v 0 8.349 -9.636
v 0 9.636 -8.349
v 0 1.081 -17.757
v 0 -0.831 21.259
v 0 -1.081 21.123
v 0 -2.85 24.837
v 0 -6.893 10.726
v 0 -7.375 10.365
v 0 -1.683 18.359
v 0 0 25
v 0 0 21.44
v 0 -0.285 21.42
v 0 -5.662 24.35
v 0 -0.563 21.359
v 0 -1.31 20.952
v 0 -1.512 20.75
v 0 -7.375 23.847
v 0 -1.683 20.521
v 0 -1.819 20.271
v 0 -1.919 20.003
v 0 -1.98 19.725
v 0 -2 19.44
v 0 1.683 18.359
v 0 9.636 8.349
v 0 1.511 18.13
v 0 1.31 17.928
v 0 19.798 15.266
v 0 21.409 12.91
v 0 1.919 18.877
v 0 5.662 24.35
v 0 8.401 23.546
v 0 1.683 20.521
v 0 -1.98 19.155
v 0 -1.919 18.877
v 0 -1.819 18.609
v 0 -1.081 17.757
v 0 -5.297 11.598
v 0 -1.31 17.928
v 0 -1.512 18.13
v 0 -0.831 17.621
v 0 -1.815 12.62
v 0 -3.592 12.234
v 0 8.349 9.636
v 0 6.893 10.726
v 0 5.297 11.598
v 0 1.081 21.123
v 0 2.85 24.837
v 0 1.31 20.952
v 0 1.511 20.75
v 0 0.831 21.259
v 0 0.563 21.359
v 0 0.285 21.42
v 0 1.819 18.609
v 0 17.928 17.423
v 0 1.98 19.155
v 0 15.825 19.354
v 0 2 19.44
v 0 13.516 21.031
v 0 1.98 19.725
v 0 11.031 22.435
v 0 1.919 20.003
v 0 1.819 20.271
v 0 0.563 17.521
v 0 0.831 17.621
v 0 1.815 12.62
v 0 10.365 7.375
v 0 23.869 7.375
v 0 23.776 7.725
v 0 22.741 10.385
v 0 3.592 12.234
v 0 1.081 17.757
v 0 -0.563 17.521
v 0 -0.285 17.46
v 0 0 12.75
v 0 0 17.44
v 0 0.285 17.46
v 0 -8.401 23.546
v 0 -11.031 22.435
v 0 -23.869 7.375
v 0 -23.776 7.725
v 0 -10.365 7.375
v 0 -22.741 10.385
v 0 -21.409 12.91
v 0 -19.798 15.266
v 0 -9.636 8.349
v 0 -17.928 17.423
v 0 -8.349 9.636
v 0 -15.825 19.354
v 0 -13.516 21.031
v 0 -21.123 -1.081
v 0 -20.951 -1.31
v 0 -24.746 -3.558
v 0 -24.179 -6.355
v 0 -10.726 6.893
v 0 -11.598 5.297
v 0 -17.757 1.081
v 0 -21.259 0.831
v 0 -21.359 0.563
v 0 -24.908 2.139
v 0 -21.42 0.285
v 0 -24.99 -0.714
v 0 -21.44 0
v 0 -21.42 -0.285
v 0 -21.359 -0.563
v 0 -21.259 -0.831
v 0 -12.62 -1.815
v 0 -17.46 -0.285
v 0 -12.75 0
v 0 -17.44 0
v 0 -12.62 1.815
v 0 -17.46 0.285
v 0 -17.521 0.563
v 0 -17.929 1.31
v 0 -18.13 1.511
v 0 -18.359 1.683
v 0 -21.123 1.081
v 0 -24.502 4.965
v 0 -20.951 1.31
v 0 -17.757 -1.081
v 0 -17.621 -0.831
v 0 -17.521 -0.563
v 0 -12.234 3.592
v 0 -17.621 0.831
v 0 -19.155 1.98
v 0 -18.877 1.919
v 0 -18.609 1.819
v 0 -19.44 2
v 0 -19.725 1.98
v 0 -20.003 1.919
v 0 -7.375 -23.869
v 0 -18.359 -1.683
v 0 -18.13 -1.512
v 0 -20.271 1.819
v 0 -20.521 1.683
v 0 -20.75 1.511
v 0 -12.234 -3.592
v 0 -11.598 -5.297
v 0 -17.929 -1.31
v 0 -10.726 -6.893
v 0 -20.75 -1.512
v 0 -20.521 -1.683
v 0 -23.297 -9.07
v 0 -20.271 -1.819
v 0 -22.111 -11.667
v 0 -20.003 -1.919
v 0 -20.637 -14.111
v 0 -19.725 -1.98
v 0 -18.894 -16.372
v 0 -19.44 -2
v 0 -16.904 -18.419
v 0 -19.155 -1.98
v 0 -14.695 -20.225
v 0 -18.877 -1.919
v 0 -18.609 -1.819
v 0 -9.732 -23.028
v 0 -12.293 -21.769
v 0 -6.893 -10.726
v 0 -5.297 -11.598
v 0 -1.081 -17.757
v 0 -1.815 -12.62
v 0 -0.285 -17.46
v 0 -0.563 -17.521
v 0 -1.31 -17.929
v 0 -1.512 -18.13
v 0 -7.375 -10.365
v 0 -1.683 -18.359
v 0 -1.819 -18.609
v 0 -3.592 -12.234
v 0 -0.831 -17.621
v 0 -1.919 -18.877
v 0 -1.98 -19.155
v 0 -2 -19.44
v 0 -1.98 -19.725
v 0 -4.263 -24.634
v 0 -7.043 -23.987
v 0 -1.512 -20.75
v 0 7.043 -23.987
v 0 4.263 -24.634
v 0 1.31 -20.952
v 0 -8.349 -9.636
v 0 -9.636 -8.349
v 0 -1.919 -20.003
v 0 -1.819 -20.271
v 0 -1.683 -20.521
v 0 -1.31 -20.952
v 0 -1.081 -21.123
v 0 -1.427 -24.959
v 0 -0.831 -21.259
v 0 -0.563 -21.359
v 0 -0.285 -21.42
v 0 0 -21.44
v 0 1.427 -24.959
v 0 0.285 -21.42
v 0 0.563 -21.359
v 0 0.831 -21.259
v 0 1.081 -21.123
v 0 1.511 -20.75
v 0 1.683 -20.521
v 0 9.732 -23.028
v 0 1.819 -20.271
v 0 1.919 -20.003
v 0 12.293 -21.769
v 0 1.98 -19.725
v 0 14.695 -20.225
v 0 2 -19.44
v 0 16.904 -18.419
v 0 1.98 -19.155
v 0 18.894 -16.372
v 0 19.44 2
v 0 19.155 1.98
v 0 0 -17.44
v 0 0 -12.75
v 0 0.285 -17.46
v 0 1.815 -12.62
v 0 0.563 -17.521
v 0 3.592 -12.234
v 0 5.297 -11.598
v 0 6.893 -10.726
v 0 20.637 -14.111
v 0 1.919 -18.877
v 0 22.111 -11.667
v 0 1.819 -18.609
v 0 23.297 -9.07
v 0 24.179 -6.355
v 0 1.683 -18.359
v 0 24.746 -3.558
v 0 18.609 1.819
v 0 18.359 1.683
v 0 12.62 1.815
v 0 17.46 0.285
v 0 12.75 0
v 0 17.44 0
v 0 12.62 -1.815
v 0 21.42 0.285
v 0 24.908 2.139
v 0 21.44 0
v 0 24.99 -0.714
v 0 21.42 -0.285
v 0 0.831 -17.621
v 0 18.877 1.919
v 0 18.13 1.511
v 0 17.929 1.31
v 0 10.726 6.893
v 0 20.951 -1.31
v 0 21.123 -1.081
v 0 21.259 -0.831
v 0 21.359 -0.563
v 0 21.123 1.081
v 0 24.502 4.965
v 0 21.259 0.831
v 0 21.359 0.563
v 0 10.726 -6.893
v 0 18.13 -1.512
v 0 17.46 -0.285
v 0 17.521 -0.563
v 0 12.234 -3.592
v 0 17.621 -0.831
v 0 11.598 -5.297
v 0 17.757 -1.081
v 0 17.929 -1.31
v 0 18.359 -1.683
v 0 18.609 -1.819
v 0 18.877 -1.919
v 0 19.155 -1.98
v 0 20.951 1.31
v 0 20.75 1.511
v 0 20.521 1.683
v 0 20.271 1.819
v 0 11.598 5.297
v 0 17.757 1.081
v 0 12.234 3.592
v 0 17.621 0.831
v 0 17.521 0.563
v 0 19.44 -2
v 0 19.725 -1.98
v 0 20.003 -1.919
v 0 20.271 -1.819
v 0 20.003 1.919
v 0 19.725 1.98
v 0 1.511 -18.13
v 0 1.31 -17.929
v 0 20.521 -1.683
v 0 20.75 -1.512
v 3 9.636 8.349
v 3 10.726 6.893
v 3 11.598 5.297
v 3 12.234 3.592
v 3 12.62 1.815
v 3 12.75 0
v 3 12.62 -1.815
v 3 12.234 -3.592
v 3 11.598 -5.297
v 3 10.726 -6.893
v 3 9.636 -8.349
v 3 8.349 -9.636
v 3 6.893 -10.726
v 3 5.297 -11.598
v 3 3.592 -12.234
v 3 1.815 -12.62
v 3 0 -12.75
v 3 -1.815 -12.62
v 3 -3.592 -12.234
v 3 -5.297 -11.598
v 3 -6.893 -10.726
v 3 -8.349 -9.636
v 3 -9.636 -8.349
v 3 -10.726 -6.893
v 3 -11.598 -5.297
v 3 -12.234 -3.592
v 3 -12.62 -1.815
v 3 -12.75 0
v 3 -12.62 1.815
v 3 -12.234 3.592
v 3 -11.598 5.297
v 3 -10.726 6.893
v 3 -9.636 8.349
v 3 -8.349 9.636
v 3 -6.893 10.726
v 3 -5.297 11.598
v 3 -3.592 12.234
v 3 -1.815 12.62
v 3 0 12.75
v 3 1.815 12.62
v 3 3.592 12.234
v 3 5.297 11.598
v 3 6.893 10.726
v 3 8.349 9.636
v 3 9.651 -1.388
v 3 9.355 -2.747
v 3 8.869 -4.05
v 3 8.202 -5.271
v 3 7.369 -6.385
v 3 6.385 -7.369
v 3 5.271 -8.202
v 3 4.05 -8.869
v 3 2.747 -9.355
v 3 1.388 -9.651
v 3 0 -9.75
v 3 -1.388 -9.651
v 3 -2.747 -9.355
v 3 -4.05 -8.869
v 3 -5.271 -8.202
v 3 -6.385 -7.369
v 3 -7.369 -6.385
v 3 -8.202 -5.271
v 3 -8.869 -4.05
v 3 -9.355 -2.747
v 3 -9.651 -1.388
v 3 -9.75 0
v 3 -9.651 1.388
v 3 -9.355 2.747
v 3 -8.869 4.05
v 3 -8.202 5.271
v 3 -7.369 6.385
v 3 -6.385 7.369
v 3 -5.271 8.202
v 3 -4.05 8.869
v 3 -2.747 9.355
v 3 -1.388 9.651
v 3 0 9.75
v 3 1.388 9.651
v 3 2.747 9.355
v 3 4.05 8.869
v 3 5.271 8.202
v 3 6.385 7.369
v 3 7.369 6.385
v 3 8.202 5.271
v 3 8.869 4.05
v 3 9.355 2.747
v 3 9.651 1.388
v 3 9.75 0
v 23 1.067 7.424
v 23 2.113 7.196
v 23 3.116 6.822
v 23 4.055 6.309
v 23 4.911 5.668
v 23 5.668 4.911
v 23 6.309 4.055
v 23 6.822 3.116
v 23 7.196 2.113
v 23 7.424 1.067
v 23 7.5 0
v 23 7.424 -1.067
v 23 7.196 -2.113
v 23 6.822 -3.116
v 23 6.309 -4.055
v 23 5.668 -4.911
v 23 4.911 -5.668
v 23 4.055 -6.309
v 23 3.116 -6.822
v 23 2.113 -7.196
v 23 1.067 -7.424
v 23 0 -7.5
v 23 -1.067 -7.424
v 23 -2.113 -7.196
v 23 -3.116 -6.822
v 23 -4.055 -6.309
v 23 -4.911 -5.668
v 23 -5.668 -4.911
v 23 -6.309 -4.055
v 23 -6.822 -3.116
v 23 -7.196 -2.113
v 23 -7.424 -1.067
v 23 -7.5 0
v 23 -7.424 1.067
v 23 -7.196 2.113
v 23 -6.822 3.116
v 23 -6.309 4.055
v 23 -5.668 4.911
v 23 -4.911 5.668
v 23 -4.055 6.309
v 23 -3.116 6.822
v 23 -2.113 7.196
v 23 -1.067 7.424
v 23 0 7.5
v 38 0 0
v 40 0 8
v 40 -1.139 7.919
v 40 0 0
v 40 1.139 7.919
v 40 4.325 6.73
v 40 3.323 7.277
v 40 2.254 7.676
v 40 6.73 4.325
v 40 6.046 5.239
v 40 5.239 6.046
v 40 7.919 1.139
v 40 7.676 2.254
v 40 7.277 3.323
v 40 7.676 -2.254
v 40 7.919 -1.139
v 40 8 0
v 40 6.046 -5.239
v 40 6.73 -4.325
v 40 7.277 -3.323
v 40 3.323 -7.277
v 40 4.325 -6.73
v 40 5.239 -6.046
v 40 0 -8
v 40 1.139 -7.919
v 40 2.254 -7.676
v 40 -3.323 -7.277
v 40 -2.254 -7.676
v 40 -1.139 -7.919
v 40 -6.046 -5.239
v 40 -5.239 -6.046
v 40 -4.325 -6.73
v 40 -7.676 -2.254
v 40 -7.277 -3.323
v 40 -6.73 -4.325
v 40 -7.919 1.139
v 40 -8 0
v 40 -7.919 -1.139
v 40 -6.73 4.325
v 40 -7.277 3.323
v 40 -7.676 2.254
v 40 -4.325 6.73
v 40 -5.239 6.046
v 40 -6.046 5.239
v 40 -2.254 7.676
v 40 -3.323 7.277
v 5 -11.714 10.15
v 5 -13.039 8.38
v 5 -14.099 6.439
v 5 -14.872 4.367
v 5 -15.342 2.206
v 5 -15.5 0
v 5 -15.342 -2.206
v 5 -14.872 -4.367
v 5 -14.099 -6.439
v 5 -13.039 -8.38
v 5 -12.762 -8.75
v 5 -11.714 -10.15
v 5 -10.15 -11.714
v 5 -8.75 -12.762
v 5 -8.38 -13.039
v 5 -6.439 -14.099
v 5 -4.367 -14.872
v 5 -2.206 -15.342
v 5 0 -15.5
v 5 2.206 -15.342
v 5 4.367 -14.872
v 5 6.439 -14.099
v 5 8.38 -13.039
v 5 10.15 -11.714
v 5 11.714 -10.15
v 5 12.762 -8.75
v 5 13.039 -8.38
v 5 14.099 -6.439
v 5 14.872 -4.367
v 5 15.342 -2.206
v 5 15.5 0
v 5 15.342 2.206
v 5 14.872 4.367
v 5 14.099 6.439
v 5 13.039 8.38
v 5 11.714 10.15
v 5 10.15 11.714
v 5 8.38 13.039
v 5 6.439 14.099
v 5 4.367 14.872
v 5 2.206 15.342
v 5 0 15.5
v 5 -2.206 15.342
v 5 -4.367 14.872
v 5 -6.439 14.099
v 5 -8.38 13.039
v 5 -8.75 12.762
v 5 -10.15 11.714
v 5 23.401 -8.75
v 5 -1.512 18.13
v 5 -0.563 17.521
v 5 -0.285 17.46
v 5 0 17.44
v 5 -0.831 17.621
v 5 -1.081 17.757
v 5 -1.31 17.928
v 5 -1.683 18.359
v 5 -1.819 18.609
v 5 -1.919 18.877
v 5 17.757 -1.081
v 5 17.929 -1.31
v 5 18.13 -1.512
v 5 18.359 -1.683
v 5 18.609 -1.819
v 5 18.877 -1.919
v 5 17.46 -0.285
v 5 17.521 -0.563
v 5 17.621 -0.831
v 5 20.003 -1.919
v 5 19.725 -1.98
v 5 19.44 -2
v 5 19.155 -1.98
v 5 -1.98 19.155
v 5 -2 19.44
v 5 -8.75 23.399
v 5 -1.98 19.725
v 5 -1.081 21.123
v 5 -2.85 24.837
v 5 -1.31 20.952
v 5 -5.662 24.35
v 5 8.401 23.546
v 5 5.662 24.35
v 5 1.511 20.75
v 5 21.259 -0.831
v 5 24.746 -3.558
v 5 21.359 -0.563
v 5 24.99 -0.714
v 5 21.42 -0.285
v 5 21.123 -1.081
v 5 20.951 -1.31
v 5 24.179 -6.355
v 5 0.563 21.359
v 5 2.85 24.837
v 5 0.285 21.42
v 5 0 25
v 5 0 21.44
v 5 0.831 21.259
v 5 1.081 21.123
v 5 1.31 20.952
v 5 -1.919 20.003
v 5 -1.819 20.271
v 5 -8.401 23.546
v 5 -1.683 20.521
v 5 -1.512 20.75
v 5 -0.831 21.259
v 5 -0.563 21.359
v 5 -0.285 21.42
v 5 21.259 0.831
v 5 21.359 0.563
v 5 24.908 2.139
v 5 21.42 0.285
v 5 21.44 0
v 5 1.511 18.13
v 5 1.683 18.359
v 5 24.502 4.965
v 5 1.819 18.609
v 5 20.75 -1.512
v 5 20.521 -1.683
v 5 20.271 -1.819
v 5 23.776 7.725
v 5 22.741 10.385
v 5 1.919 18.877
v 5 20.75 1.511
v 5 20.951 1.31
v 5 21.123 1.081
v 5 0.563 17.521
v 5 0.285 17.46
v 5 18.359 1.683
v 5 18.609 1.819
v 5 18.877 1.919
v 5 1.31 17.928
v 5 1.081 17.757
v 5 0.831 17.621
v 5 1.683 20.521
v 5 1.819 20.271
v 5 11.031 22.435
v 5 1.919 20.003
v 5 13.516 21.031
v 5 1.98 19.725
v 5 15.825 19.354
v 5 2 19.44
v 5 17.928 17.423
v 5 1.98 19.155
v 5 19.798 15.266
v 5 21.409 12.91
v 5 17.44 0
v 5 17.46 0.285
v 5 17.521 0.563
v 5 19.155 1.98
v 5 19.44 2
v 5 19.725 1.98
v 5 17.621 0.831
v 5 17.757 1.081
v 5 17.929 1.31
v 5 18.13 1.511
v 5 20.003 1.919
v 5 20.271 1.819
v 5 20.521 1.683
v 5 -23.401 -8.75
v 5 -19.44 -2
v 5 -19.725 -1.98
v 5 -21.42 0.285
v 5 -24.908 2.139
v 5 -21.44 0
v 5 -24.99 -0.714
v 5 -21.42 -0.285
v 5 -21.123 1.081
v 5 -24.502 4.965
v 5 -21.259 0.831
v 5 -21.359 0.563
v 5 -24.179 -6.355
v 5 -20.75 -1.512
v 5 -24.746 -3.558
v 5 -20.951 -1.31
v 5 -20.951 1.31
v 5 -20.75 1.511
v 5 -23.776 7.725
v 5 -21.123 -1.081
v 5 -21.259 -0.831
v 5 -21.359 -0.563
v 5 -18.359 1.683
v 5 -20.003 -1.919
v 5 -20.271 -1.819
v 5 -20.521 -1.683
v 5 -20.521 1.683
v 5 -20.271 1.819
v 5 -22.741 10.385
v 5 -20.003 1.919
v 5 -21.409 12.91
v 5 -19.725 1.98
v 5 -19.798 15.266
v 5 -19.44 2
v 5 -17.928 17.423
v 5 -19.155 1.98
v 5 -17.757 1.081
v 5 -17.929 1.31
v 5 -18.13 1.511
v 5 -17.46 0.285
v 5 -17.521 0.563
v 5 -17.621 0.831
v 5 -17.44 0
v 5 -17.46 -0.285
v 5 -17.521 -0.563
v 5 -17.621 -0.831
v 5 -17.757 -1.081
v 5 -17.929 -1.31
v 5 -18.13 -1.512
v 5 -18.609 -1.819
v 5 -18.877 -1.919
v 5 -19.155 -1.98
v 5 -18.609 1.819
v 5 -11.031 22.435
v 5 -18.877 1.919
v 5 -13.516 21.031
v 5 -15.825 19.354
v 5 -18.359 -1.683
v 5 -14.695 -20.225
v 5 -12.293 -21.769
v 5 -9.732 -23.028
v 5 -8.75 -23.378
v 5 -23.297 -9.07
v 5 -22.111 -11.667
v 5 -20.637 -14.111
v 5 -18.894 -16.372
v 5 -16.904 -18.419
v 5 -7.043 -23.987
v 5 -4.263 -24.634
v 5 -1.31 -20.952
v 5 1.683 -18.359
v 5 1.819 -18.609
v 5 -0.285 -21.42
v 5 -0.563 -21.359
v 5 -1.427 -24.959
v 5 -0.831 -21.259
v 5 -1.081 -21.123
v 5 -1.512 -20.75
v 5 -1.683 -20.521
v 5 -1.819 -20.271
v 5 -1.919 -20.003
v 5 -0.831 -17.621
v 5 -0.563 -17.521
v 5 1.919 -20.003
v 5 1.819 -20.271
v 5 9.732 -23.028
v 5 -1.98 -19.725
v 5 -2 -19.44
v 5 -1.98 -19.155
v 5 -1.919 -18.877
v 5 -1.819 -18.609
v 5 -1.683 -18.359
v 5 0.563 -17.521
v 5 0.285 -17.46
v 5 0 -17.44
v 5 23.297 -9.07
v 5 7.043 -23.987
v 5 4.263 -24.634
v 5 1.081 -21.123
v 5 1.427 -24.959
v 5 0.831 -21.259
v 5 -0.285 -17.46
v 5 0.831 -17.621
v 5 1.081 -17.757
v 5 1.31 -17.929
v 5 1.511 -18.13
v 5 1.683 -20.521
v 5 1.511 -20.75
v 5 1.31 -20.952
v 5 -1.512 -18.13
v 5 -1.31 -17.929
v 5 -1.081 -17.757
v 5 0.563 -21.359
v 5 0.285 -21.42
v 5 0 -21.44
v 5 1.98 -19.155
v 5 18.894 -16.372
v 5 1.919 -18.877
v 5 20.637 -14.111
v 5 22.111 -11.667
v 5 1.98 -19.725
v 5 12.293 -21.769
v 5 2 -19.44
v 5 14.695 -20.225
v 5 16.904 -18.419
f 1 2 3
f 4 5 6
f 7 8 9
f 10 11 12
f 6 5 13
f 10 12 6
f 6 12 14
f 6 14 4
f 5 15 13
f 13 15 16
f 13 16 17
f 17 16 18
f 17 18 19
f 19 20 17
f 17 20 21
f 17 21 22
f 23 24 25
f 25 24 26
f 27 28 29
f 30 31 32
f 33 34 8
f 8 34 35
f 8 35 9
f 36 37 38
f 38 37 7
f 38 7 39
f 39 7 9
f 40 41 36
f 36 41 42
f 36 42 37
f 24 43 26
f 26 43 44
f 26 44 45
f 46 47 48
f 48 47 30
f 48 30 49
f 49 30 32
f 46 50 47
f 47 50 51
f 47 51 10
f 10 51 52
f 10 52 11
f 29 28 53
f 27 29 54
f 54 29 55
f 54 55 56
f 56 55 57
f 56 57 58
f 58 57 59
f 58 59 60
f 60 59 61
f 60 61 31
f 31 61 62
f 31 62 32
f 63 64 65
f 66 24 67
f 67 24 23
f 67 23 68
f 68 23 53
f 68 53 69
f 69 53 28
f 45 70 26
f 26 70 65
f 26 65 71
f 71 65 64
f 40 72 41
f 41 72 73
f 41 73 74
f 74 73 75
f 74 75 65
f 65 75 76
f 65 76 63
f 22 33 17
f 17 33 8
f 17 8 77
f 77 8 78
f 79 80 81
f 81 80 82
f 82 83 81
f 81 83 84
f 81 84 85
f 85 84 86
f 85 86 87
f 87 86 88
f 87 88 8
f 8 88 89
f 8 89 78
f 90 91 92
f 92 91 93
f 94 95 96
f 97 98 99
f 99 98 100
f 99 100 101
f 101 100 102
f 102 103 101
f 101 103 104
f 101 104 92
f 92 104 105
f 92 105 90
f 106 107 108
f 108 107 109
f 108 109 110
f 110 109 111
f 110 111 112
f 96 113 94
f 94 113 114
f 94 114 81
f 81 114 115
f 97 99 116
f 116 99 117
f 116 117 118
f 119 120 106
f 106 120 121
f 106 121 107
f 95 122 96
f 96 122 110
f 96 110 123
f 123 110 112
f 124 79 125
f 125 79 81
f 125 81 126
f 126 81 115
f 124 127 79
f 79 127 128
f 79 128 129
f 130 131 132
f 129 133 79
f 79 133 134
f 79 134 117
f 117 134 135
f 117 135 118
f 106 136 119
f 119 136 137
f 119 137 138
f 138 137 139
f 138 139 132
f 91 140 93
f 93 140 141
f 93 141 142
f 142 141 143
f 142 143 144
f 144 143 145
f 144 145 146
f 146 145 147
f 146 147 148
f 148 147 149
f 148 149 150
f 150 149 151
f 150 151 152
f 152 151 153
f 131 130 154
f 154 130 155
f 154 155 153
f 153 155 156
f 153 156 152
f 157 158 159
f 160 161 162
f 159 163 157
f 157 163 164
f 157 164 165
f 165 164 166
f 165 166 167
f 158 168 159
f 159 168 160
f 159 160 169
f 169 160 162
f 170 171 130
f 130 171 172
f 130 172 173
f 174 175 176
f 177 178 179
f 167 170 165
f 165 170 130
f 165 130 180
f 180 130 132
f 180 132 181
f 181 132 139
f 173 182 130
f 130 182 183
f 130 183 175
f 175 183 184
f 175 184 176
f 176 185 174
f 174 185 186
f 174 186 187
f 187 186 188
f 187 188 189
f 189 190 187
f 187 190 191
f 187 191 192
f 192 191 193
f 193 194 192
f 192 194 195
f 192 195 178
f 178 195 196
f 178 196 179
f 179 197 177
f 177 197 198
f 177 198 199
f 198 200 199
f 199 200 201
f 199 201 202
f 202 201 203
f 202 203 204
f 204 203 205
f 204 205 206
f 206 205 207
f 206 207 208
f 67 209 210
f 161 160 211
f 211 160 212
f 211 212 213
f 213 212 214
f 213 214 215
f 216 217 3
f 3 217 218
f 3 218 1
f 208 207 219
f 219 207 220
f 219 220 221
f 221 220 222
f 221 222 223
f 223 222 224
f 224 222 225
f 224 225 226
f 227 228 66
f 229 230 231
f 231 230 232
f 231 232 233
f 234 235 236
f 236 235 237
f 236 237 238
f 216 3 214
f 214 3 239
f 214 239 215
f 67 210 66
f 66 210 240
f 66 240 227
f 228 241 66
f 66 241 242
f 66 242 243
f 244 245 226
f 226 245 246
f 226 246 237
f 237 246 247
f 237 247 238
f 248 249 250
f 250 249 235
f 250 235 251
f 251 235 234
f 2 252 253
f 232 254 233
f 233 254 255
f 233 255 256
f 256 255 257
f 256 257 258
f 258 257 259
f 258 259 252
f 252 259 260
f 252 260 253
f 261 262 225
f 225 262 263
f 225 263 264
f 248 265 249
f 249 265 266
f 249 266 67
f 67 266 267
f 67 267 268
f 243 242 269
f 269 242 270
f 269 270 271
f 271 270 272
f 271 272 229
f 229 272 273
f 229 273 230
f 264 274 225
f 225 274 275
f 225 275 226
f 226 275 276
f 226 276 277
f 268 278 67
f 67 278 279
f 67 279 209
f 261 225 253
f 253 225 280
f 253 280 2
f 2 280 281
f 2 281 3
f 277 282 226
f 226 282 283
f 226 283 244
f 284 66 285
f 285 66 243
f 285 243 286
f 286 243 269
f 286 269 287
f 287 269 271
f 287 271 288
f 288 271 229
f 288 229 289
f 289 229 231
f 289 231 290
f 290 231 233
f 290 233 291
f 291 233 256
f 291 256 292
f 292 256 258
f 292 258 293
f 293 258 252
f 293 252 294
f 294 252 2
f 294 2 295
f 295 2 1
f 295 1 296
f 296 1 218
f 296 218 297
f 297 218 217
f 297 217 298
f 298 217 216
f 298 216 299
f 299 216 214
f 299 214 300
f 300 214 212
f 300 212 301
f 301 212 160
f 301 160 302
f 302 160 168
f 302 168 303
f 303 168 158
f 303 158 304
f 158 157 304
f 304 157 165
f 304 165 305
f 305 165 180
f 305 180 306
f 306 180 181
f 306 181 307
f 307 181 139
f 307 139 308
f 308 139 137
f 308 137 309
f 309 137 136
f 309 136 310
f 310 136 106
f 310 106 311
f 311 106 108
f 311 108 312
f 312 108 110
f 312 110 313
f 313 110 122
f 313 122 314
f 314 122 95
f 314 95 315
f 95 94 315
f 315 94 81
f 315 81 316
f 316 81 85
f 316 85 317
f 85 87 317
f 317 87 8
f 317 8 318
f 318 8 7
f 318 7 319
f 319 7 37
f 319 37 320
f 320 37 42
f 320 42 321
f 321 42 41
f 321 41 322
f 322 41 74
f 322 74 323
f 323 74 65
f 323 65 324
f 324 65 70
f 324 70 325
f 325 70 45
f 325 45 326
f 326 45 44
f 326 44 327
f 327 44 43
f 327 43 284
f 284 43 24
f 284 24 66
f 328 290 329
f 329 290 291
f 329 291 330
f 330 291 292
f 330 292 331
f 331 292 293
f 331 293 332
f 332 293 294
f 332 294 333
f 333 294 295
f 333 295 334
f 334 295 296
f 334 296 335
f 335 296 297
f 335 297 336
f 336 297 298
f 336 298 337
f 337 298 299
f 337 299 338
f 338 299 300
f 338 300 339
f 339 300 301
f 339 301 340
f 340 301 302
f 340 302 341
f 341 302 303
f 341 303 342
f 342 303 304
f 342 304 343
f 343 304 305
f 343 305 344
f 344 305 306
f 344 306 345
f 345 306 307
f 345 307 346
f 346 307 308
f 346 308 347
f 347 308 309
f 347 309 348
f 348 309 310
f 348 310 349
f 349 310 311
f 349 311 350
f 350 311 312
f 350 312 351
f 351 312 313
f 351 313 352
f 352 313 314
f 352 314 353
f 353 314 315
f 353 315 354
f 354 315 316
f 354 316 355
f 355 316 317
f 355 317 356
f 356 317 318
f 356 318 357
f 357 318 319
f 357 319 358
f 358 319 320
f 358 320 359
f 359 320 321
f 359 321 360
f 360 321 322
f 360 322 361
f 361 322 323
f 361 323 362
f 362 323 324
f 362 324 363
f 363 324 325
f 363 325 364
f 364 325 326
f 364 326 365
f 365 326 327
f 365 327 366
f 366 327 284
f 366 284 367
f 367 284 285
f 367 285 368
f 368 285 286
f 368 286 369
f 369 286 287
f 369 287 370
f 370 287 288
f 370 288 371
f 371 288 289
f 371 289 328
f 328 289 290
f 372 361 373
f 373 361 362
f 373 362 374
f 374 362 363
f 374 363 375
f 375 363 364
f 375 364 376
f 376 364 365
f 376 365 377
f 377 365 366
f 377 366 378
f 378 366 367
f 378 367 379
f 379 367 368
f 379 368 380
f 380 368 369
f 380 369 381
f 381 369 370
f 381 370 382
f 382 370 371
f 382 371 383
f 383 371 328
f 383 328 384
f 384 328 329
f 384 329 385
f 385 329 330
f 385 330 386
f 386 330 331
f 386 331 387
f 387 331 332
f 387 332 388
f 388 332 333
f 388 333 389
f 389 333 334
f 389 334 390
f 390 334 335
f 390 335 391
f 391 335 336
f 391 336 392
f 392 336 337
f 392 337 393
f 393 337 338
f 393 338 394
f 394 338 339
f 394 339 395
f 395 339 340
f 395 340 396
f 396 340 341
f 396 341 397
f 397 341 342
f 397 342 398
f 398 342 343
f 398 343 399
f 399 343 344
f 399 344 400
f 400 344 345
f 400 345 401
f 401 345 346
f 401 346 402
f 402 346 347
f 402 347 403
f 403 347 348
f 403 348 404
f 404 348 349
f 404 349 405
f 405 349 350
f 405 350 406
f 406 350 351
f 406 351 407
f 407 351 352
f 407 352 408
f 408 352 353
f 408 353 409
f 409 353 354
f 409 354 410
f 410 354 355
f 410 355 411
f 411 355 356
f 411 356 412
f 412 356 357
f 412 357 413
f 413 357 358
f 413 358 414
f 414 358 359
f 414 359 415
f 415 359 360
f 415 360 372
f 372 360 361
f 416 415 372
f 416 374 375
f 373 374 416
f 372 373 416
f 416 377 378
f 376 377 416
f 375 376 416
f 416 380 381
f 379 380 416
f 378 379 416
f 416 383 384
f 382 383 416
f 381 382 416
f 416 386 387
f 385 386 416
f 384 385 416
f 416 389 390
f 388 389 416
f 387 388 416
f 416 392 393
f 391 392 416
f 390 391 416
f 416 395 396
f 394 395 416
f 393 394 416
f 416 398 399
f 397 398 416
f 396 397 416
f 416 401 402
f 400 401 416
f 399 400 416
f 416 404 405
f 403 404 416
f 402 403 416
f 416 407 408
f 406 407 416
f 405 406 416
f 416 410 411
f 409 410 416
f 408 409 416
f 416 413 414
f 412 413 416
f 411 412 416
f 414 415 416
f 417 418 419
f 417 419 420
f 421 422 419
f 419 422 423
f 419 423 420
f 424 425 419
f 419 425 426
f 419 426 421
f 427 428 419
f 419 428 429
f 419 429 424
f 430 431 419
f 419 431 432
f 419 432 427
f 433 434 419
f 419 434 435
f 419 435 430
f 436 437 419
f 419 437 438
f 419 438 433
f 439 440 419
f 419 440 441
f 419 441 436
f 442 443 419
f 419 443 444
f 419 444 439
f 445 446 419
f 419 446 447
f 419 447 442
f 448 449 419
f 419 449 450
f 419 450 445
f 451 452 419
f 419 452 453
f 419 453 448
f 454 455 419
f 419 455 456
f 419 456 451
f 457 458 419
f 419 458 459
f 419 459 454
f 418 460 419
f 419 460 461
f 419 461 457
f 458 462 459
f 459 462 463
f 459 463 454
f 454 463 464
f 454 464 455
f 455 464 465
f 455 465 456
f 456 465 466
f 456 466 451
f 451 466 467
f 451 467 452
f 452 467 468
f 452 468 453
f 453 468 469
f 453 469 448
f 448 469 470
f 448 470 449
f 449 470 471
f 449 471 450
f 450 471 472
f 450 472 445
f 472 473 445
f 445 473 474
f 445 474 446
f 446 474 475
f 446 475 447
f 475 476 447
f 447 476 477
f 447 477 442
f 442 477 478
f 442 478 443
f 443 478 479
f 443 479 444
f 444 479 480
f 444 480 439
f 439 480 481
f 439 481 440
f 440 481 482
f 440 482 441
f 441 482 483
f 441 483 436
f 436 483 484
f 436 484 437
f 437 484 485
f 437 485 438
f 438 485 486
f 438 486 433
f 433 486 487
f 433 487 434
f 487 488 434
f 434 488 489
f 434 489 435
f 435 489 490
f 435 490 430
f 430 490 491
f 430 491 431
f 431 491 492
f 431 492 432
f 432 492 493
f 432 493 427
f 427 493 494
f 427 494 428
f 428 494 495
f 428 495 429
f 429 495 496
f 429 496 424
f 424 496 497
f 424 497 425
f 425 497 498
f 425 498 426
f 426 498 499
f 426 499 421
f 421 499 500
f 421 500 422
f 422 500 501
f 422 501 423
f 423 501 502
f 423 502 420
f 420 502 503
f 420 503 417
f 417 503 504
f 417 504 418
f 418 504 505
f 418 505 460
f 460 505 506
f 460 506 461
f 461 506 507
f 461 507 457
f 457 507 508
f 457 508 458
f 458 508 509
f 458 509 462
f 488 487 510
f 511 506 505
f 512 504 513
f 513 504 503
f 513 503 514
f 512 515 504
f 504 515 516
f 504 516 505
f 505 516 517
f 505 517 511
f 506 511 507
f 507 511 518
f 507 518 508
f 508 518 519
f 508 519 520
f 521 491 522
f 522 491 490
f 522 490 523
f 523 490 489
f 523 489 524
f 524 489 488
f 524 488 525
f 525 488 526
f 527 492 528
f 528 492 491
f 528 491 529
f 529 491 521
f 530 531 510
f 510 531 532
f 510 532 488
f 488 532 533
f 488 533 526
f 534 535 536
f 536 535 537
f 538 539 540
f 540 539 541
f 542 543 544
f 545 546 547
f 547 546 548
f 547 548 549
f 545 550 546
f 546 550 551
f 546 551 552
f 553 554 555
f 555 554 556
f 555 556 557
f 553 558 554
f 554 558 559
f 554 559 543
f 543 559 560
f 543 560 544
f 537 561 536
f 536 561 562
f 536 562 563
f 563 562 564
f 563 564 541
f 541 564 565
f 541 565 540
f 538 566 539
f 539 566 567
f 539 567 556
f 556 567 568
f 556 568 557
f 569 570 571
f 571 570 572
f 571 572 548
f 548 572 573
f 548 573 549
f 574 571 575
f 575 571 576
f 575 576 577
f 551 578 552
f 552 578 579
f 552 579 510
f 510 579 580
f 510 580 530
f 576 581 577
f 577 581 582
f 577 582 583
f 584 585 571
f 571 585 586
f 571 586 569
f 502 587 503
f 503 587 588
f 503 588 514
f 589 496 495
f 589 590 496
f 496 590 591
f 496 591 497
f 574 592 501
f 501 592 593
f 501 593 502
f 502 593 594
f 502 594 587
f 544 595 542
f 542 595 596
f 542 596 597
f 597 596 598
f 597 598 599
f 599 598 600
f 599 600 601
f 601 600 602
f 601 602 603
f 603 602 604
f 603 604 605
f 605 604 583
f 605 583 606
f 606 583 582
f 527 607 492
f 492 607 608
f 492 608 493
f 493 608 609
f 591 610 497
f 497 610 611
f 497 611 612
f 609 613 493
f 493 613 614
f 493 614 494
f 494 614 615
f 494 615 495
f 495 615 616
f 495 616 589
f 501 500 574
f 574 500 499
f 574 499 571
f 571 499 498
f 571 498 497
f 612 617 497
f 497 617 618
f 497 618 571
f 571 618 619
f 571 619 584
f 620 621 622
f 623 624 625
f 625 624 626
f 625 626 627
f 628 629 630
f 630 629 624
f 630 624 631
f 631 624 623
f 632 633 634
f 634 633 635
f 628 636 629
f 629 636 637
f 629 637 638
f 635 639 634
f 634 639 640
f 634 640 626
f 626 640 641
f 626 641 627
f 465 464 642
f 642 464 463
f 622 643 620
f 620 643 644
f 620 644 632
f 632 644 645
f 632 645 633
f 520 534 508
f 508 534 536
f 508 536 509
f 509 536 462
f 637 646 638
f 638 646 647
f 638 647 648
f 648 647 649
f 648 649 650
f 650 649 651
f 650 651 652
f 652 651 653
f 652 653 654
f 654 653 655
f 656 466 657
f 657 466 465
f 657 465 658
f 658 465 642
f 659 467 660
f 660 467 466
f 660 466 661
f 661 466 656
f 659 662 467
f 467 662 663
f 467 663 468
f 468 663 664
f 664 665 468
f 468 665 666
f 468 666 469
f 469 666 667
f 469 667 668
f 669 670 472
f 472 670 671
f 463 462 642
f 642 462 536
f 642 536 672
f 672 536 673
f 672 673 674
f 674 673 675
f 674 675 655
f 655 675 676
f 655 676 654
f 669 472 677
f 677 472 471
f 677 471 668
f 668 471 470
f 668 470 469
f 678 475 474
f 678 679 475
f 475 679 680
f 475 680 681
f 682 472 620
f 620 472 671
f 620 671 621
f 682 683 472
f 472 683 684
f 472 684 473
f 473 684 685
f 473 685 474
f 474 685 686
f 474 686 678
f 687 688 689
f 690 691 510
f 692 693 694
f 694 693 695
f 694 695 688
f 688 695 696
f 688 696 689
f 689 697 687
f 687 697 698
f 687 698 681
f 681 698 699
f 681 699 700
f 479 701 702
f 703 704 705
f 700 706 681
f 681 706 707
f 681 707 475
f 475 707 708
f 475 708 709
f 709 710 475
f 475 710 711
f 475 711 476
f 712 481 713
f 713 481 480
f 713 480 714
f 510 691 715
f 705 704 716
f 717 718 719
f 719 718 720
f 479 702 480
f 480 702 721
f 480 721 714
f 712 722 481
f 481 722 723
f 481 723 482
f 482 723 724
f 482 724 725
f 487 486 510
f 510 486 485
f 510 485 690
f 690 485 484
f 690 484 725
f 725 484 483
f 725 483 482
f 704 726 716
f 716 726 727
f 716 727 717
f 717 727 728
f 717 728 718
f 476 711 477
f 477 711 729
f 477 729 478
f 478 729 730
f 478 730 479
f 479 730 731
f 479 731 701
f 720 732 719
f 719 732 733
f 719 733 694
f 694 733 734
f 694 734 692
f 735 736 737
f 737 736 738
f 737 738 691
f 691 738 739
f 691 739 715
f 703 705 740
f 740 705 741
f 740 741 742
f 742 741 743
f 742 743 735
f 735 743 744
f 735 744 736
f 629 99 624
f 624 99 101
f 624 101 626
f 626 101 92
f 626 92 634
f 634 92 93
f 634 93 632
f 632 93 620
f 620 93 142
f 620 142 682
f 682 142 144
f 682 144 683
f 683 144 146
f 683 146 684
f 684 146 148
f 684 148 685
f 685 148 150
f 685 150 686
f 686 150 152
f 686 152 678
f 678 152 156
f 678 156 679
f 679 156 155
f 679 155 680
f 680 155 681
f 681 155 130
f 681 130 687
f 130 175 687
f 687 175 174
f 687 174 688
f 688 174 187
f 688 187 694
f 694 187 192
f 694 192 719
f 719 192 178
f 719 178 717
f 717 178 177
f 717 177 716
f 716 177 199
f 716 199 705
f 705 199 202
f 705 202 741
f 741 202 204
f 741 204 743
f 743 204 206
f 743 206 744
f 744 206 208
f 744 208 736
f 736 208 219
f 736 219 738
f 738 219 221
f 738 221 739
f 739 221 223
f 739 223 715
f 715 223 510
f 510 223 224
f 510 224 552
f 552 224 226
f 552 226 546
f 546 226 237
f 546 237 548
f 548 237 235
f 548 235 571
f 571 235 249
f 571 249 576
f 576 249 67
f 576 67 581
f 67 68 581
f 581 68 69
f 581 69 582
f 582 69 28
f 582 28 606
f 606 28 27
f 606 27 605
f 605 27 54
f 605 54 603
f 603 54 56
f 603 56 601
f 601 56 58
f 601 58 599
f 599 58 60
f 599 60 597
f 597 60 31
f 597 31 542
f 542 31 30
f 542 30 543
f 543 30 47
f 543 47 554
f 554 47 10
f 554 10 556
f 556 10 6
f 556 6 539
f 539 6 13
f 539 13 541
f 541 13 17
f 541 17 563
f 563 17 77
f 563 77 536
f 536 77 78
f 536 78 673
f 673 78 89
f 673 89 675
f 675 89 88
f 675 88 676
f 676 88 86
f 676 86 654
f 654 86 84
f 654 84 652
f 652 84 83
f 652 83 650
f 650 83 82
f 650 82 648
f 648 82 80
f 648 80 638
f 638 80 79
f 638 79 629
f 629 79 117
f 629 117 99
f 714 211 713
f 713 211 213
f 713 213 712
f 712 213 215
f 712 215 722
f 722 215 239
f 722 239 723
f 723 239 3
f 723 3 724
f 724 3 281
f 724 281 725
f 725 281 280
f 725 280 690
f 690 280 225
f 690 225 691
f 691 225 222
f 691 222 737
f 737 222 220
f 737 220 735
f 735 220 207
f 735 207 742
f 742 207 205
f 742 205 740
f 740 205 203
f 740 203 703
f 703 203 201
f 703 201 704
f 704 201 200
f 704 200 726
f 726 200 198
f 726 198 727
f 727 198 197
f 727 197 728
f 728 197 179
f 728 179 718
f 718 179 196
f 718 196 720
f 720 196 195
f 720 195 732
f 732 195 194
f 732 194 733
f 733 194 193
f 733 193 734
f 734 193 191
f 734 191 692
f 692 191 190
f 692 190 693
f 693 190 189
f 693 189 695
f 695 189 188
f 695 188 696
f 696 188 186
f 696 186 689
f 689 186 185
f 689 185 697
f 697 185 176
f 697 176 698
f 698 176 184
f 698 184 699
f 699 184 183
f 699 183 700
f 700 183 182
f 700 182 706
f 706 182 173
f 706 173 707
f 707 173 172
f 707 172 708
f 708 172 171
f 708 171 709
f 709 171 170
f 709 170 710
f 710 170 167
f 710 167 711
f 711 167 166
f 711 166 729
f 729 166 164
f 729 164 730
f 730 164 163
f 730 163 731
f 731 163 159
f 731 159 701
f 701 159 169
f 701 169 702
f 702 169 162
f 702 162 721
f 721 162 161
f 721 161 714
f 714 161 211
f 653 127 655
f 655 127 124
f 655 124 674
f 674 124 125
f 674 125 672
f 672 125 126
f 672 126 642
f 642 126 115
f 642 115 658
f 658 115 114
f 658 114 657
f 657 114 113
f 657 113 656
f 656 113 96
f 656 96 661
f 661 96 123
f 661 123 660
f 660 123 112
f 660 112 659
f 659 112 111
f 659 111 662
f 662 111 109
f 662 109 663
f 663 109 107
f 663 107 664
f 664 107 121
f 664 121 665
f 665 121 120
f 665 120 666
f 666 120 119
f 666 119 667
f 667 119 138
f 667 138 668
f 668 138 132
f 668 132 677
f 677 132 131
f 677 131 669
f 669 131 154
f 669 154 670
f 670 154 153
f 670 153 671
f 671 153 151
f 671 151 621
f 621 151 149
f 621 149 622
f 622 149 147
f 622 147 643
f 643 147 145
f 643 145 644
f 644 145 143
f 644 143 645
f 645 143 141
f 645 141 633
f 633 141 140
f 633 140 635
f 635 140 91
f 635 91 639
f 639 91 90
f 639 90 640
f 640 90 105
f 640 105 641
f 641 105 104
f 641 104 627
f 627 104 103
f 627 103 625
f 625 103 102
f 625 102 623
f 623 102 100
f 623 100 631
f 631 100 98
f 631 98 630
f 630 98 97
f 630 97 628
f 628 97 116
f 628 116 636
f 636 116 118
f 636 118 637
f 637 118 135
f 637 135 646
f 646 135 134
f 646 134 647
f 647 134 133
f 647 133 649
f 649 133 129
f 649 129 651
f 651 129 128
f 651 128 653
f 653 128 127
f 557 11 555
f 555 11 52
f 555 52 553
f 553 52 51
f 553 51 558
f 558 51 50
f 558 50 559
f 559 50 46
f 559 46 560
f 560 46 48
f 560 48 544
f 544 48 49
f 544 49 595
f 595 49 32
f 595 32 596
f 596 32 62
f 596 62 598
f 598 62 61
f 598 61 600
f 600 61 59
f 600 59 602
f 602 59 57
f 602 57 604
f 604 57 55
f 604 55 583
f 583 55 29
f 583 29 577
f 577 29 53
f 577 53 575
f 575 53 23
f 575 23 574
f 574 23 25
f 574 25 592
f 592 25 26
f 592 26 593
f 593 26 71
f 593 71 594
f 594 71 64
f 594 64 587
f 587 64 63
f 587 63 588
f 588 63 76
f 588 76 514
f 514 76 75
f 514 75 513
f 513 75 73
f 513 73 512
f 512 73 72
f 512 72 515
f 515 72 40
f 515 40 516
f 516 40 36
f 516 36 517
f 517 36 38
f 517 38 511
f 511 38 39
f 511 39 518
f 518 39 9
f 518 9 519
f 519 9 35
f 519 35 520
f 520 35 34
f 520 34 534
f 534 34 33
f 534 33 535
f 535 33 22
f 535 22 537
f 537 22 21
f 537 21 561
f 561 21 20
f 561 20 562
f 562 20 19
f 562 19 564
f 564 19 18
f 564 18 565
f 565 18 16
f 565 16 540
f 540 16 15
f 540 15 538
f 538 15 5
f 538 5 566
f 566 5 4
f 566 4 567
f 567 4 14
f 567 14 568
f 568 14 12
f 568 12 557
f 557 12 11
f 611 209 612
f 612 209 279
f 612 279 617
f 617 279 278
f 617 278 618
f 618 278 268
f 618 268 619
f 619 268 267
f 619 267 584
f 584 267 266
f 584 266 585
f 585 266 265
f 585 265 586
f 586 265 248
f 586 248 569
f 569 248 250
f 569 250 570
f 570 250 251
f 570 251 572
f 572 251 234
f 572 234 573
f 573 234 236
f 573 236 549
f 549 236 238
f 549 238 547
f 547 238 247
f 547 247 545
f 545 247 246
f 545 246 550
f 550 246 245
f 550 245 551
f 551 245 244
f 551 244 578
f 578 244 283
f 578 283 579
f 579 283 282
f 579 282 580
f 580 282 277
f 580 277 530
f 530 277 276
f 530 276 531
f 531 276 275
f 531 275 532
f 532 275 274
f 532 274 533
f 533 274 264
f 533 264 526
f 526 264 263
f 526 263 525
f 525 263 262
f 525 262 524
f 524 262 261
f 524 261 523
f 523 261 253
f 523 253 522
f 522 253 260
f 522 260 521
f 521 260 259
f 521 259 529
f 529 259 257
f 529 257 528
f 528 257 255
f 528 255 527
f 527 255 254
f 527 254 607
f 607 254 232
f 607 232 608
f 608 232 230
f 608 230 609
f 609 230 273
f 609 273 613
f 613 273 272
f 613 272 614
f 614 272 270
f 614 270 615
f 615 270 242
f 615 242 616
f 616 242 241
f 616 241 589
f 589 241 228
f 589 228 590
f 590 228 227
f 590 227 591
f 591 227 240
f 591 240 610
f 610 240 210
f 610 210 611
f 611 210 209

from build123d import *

# Parameters (mm, degrees)
F_4_0_4_DURCHMESSER_BOHRUNG1_D     = 4
F_4_0_4_DURCHMESSER_BOHRUNG1_DEPTH = 5.001
KREISMUSTER1_COUNT                 = 4


with BuildPart() as part:
    # Skizze1 → Rotation1 (revolve)
    with BuildSketch(Plane.XY):
        Polygon((0, 12.75), (3, 12.75), (3, 9.75), (23, 7.5), (38, 0), (40, 0), (40, 8), (5, 15.5), (5, 25), (0, 25), align=None)
    revolve(axis=Axis((-34.842488806, 0, 0), (1, 0, 0)))

    # Ø4.0 (4) Durchmesser Bohrung1
    with Locations(Plane.ZY):
        with Locations((-19.44, 0)):
            f_4_0_4_durchmesser_bohrung1 = Hole(F_4_0_4_DURCHMESSER_BOHRUNG1_D / 2, depth=F_4_0_4_DURCHMESSER_BOHRUNG1_DEPTH)

    # Kreismuster1: Ø4.0 (4) Durchmesser Bohrung1 ×4 about axis
    kreismuster1_axis = Axis((0, 0, 0), (1, 0, 0))
    for i in range(1, KREISMUSTER1_COUNT):
        add(f_4_0_4_durchmesser_bohrung1.rotate(kreismuster1_axis, i * 360 / KREISMUSTER1_COUNT), mode=Mode.SUBTRACT)


solid = part.part
